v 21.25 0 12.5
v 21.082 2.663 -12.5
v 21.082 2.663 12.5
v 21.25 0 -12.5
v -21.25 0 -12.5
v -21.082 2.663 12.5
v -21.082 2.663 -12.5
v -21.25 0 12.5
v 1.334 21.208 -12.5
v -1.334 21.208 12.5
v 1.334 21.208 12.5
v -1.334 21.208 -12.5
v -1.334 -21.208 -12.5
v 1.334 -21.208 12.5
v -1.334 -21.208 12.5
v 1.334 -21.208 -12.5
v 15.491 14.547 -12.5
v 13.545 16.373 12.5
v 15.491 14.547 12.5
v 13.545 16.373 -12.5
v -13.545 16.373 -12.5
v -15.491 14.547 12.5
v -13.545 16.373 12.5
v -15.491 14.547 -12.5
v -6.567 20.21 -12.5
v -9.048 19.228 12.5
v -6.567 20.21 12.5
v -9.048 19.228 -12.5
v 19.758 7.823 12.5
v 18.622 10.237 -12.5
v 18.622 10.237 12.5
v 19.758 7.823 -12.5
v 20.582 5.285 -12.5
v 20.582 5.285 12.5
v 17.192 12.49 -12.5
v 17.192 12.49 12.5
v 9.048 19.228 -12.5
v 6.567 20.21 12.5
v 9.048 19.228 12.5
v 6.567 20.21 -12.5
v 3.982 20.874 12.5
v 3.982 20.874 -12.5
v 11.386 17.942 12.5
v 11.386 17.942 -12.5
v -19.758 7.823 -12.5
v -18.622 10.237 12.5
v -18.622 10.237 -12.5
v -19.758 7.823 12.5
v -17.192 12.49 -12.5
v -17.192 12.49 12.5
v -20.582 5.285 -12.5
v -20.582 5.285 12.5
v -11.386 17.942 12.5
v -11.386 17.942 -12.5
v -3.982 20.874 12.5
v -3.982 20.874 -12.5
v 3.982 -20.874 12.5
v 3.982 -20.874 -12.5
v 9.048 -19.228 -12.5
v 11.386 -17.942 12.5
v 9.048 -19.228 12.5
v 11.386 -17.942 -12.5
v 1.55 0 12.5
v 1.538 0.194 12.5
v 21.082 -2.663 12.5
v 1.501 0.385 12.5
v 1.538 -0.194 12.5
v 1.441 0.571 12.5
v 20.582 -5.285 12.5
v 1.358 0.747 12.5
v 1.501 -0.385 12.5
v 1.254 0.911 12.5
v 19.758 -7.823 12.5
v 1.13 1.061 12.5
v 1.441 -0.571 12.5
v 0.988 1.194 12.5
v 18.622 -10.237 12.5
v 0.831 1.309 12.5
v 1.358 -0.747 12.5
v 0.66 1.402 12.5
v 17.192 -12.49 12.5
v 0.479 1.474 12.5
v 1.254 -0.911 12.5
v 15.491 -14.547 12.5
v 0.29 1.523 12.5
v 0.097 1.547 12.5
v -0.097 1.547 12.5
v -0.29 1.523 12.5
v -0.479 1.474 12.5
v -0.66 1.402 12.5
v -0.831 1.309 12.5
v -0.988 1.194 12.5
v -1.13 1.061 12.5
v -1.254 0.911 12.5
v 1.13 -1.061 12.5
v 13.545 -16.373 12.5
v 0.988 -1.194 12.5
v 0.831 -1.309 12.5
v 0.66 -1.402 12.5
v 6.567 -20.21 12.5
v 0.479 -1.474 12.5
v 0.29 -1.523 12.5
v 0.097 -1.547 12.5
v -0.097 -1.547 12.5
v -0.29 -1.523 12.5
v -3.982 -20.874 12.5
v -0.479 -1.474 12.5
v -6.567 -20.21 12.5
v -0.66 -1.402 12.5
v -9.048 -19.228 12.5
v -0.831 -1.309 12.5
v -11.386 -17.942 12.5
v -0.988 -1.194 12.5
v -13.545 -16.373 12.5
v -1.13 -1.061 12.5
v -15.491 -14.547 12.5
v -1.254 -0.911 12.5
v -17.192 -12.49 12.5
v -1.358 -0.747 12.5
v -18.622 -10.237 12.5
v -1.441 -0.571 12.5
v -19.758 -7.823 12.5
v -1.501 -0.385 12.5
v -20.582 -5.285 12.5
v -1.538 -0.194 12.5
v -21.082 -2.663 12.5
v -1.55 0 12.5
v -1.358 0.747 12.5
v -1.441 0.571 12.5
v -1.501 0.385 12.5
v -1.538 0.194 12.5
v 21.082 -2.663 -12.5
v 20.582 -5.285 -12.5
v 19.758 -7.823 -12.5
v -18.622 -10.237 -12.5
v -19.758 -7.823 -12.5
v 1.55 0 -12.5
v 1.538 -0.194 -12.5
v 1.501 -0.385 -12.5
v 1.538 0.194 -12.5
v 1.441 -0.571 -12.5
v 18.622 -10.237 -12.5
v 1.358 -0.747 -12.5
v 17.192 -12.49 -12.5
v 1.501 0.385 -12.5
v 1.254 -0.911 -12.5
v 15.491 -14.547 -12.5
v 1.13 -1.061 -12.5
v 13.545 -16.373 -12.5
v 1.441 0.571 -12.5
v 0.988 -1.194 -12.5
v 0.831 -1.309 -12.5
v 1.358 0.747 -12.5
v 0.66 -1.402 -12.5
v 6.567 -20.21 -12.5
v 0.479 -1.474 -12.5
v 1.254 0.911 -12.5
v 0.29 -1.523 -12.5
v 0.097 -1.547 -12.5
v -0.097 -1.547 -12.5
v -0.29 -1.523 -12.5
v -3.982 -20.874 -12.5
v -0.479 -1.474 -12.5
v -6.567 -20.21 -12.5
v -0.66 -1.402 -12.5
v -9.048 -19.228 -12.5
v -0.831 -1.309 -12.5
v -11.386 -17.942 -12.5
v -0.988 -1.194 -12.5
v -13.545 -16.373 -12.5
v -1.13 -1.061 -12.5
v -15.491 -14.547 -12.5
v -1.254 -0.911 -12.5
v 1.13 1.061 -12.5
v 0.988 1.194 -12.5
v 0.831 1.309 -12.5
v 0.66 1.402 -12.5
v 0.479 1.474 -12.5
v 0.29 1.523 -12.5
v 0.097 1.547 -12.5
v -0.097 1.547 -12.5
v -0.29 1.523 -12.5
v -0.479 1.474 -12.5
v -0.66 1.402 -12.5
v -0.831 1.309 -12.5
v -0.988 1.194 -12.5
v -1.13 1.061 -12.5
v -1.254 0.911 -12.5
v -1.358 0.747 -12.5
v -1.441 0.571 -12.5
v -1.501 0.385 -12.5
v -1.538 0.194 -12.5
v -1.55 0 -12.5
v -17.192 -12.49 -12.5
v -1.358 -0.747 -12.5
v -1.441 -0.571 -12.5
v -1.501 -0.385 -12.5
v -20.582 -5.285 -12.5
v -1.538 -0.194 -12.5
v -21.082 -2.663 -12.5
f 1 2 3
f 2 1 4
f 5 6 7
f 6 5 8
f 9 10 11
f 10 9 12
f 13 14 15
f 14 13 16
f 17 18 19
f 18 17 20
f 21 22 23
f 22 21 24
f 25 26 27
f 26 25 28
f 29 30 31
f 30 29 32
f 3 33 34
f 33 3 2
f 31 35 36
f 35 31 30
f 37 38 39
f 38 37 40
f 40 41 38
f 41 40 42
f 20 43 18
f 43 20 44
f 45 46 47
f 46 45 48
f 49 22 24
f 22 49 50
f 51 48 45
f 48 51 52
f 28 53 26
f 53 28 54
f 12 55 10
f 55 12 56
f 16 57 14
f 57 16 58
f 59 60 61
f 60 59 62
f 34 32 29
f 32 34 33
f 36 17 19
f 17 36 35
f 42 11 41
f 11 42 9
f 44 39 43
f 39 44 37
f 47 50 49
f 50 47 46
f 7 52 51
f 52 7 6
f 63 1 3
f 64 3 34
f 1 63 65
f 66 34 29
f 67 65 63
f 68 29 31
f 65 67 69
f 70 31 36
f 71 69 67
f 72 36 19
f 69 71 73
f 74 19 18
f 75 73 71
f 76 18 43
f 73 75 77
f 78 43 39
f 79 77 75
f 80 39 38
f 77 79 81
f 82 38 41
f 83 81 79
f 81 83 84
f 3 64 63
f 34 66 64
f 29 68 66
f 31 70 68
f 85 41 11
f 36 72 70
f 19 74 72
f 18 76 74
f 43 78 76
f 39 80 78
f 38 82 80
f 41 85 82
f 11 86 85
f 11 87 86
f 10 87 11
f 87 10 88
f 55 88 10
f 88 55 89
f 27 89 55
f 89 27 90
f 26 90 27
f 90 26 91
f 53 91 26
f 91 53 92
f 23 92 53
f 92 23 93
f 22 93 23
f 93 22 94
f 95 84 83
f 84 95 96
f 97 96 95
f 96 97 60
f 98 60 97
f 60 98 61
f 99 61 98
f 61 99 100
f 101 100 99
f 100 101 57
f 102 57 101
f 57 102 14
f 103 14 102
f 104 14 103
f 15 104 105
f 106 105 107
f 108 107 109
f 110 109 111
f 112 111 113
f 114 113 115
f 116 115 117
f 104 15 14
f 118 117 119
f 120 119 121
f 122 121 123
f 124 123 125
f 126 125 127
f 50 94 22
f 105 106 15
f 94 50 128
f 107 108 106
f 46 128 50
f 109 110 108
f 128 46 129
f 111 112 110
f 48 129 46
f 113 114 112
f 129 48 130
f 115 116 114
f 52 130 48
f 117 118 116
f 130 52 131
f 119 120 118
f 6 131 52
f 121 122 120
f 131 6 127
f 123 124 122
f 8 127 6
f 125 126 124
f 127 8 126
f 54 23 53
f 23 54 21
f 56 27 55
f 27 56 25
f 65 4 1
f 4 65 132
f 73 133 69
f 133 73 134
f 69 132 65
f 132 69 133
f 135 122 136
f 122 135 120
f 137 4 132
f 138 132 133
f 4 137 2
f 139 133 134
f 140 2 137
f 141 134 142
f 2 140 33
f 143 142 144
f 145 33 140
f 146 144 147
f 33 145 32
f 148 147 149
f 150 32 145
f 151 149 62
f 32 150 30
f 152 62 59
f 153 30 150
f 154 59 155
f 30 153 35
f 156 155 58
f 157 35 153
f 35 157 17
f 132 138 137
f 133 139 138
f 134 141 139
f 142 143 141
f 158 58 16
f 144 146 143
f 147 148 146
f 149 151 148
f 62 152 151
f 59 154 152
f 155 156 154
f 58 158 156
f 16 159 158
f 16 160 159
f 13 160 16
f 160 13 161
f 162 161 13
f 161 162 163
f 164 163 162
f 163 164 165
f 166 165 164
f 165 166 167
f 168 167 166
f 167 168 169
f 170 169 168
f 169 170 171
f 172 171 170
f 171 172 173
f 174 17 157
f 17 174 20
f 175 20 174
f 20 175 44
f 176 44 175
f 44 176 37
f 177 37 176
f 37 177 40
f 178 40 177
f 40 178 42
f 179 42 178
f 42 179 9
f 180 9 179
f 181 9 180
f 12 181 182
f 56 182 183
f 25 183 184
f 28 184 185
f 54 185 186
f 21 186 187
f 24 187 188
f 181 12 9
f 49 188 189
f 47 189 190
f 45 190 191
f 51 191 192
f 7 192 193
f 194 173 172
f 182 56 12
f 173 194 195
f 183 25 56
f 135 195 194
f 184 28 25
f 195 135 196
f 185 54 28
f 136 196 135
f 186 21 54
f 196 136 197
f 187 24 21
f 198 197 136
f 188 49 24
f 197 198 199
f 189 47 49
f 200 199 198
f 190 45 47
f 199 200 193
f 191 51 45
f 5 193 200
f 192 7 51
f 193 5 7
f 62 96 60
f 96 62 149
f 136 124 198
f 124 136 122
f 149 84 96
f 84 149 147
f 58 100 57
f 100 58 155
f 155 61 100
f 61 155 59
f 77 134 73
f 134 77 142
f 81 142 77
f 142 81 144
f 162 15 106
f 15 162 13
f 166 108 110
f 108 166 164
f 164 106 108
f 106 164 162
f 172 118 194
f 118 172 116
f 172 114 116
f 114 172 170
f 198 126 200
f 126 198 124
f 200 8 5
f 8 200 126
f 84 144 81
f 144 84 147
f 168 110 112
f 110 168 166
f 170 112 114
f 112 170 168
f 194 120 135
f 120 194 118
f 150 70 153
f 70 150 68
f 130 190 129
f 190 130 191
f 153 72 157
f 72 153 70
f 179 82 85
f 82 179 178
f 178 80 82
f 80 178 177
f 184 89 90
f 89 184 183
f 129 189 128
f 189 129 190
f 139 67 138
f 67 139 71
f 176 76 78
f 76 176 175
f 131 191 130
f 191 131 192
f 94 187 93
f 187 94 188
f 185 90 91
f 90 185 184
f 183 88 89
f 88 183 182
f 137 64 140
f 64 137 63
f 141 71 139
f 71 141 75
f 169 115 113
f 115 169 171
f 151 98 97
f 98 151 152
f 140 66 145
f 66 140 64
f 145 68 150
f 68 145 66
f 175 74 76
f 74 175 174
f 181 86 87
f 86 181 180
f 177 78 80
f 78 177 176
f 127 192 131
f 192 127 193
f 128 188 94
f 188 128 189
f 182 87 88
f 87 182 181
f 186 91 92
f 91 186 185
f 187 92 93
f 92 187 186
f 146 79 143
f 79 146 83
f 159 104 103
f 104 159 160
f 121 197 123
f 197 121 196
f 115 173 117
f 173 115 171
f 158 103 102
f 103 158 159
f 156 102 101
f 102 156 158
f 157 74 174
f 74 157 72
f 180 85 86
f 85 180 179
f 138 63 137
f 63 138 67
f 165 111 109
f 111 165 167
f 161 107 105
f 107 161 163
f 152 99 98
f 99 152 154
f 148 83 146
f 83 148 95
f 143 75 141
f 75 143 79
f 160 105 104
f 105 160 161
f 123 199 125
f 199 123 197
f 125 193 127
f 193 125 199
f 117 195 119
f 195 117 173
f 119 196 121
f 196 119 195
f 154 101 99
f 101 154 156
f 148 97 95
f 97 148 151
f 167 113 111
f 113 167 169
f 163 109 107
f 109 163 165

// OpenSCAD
$fn = 50;


difference() {
	union() {
		translate(v = [0, 0, -12.5000000000]) {
			cylinder(h = 25, r = 21.2500000000);
		}
	}
	union() {
		translate(v = [0, 0, -100.0000000000]) {
			cylinder(h = 200, r = 1.5500000000);
		}
	}
}
